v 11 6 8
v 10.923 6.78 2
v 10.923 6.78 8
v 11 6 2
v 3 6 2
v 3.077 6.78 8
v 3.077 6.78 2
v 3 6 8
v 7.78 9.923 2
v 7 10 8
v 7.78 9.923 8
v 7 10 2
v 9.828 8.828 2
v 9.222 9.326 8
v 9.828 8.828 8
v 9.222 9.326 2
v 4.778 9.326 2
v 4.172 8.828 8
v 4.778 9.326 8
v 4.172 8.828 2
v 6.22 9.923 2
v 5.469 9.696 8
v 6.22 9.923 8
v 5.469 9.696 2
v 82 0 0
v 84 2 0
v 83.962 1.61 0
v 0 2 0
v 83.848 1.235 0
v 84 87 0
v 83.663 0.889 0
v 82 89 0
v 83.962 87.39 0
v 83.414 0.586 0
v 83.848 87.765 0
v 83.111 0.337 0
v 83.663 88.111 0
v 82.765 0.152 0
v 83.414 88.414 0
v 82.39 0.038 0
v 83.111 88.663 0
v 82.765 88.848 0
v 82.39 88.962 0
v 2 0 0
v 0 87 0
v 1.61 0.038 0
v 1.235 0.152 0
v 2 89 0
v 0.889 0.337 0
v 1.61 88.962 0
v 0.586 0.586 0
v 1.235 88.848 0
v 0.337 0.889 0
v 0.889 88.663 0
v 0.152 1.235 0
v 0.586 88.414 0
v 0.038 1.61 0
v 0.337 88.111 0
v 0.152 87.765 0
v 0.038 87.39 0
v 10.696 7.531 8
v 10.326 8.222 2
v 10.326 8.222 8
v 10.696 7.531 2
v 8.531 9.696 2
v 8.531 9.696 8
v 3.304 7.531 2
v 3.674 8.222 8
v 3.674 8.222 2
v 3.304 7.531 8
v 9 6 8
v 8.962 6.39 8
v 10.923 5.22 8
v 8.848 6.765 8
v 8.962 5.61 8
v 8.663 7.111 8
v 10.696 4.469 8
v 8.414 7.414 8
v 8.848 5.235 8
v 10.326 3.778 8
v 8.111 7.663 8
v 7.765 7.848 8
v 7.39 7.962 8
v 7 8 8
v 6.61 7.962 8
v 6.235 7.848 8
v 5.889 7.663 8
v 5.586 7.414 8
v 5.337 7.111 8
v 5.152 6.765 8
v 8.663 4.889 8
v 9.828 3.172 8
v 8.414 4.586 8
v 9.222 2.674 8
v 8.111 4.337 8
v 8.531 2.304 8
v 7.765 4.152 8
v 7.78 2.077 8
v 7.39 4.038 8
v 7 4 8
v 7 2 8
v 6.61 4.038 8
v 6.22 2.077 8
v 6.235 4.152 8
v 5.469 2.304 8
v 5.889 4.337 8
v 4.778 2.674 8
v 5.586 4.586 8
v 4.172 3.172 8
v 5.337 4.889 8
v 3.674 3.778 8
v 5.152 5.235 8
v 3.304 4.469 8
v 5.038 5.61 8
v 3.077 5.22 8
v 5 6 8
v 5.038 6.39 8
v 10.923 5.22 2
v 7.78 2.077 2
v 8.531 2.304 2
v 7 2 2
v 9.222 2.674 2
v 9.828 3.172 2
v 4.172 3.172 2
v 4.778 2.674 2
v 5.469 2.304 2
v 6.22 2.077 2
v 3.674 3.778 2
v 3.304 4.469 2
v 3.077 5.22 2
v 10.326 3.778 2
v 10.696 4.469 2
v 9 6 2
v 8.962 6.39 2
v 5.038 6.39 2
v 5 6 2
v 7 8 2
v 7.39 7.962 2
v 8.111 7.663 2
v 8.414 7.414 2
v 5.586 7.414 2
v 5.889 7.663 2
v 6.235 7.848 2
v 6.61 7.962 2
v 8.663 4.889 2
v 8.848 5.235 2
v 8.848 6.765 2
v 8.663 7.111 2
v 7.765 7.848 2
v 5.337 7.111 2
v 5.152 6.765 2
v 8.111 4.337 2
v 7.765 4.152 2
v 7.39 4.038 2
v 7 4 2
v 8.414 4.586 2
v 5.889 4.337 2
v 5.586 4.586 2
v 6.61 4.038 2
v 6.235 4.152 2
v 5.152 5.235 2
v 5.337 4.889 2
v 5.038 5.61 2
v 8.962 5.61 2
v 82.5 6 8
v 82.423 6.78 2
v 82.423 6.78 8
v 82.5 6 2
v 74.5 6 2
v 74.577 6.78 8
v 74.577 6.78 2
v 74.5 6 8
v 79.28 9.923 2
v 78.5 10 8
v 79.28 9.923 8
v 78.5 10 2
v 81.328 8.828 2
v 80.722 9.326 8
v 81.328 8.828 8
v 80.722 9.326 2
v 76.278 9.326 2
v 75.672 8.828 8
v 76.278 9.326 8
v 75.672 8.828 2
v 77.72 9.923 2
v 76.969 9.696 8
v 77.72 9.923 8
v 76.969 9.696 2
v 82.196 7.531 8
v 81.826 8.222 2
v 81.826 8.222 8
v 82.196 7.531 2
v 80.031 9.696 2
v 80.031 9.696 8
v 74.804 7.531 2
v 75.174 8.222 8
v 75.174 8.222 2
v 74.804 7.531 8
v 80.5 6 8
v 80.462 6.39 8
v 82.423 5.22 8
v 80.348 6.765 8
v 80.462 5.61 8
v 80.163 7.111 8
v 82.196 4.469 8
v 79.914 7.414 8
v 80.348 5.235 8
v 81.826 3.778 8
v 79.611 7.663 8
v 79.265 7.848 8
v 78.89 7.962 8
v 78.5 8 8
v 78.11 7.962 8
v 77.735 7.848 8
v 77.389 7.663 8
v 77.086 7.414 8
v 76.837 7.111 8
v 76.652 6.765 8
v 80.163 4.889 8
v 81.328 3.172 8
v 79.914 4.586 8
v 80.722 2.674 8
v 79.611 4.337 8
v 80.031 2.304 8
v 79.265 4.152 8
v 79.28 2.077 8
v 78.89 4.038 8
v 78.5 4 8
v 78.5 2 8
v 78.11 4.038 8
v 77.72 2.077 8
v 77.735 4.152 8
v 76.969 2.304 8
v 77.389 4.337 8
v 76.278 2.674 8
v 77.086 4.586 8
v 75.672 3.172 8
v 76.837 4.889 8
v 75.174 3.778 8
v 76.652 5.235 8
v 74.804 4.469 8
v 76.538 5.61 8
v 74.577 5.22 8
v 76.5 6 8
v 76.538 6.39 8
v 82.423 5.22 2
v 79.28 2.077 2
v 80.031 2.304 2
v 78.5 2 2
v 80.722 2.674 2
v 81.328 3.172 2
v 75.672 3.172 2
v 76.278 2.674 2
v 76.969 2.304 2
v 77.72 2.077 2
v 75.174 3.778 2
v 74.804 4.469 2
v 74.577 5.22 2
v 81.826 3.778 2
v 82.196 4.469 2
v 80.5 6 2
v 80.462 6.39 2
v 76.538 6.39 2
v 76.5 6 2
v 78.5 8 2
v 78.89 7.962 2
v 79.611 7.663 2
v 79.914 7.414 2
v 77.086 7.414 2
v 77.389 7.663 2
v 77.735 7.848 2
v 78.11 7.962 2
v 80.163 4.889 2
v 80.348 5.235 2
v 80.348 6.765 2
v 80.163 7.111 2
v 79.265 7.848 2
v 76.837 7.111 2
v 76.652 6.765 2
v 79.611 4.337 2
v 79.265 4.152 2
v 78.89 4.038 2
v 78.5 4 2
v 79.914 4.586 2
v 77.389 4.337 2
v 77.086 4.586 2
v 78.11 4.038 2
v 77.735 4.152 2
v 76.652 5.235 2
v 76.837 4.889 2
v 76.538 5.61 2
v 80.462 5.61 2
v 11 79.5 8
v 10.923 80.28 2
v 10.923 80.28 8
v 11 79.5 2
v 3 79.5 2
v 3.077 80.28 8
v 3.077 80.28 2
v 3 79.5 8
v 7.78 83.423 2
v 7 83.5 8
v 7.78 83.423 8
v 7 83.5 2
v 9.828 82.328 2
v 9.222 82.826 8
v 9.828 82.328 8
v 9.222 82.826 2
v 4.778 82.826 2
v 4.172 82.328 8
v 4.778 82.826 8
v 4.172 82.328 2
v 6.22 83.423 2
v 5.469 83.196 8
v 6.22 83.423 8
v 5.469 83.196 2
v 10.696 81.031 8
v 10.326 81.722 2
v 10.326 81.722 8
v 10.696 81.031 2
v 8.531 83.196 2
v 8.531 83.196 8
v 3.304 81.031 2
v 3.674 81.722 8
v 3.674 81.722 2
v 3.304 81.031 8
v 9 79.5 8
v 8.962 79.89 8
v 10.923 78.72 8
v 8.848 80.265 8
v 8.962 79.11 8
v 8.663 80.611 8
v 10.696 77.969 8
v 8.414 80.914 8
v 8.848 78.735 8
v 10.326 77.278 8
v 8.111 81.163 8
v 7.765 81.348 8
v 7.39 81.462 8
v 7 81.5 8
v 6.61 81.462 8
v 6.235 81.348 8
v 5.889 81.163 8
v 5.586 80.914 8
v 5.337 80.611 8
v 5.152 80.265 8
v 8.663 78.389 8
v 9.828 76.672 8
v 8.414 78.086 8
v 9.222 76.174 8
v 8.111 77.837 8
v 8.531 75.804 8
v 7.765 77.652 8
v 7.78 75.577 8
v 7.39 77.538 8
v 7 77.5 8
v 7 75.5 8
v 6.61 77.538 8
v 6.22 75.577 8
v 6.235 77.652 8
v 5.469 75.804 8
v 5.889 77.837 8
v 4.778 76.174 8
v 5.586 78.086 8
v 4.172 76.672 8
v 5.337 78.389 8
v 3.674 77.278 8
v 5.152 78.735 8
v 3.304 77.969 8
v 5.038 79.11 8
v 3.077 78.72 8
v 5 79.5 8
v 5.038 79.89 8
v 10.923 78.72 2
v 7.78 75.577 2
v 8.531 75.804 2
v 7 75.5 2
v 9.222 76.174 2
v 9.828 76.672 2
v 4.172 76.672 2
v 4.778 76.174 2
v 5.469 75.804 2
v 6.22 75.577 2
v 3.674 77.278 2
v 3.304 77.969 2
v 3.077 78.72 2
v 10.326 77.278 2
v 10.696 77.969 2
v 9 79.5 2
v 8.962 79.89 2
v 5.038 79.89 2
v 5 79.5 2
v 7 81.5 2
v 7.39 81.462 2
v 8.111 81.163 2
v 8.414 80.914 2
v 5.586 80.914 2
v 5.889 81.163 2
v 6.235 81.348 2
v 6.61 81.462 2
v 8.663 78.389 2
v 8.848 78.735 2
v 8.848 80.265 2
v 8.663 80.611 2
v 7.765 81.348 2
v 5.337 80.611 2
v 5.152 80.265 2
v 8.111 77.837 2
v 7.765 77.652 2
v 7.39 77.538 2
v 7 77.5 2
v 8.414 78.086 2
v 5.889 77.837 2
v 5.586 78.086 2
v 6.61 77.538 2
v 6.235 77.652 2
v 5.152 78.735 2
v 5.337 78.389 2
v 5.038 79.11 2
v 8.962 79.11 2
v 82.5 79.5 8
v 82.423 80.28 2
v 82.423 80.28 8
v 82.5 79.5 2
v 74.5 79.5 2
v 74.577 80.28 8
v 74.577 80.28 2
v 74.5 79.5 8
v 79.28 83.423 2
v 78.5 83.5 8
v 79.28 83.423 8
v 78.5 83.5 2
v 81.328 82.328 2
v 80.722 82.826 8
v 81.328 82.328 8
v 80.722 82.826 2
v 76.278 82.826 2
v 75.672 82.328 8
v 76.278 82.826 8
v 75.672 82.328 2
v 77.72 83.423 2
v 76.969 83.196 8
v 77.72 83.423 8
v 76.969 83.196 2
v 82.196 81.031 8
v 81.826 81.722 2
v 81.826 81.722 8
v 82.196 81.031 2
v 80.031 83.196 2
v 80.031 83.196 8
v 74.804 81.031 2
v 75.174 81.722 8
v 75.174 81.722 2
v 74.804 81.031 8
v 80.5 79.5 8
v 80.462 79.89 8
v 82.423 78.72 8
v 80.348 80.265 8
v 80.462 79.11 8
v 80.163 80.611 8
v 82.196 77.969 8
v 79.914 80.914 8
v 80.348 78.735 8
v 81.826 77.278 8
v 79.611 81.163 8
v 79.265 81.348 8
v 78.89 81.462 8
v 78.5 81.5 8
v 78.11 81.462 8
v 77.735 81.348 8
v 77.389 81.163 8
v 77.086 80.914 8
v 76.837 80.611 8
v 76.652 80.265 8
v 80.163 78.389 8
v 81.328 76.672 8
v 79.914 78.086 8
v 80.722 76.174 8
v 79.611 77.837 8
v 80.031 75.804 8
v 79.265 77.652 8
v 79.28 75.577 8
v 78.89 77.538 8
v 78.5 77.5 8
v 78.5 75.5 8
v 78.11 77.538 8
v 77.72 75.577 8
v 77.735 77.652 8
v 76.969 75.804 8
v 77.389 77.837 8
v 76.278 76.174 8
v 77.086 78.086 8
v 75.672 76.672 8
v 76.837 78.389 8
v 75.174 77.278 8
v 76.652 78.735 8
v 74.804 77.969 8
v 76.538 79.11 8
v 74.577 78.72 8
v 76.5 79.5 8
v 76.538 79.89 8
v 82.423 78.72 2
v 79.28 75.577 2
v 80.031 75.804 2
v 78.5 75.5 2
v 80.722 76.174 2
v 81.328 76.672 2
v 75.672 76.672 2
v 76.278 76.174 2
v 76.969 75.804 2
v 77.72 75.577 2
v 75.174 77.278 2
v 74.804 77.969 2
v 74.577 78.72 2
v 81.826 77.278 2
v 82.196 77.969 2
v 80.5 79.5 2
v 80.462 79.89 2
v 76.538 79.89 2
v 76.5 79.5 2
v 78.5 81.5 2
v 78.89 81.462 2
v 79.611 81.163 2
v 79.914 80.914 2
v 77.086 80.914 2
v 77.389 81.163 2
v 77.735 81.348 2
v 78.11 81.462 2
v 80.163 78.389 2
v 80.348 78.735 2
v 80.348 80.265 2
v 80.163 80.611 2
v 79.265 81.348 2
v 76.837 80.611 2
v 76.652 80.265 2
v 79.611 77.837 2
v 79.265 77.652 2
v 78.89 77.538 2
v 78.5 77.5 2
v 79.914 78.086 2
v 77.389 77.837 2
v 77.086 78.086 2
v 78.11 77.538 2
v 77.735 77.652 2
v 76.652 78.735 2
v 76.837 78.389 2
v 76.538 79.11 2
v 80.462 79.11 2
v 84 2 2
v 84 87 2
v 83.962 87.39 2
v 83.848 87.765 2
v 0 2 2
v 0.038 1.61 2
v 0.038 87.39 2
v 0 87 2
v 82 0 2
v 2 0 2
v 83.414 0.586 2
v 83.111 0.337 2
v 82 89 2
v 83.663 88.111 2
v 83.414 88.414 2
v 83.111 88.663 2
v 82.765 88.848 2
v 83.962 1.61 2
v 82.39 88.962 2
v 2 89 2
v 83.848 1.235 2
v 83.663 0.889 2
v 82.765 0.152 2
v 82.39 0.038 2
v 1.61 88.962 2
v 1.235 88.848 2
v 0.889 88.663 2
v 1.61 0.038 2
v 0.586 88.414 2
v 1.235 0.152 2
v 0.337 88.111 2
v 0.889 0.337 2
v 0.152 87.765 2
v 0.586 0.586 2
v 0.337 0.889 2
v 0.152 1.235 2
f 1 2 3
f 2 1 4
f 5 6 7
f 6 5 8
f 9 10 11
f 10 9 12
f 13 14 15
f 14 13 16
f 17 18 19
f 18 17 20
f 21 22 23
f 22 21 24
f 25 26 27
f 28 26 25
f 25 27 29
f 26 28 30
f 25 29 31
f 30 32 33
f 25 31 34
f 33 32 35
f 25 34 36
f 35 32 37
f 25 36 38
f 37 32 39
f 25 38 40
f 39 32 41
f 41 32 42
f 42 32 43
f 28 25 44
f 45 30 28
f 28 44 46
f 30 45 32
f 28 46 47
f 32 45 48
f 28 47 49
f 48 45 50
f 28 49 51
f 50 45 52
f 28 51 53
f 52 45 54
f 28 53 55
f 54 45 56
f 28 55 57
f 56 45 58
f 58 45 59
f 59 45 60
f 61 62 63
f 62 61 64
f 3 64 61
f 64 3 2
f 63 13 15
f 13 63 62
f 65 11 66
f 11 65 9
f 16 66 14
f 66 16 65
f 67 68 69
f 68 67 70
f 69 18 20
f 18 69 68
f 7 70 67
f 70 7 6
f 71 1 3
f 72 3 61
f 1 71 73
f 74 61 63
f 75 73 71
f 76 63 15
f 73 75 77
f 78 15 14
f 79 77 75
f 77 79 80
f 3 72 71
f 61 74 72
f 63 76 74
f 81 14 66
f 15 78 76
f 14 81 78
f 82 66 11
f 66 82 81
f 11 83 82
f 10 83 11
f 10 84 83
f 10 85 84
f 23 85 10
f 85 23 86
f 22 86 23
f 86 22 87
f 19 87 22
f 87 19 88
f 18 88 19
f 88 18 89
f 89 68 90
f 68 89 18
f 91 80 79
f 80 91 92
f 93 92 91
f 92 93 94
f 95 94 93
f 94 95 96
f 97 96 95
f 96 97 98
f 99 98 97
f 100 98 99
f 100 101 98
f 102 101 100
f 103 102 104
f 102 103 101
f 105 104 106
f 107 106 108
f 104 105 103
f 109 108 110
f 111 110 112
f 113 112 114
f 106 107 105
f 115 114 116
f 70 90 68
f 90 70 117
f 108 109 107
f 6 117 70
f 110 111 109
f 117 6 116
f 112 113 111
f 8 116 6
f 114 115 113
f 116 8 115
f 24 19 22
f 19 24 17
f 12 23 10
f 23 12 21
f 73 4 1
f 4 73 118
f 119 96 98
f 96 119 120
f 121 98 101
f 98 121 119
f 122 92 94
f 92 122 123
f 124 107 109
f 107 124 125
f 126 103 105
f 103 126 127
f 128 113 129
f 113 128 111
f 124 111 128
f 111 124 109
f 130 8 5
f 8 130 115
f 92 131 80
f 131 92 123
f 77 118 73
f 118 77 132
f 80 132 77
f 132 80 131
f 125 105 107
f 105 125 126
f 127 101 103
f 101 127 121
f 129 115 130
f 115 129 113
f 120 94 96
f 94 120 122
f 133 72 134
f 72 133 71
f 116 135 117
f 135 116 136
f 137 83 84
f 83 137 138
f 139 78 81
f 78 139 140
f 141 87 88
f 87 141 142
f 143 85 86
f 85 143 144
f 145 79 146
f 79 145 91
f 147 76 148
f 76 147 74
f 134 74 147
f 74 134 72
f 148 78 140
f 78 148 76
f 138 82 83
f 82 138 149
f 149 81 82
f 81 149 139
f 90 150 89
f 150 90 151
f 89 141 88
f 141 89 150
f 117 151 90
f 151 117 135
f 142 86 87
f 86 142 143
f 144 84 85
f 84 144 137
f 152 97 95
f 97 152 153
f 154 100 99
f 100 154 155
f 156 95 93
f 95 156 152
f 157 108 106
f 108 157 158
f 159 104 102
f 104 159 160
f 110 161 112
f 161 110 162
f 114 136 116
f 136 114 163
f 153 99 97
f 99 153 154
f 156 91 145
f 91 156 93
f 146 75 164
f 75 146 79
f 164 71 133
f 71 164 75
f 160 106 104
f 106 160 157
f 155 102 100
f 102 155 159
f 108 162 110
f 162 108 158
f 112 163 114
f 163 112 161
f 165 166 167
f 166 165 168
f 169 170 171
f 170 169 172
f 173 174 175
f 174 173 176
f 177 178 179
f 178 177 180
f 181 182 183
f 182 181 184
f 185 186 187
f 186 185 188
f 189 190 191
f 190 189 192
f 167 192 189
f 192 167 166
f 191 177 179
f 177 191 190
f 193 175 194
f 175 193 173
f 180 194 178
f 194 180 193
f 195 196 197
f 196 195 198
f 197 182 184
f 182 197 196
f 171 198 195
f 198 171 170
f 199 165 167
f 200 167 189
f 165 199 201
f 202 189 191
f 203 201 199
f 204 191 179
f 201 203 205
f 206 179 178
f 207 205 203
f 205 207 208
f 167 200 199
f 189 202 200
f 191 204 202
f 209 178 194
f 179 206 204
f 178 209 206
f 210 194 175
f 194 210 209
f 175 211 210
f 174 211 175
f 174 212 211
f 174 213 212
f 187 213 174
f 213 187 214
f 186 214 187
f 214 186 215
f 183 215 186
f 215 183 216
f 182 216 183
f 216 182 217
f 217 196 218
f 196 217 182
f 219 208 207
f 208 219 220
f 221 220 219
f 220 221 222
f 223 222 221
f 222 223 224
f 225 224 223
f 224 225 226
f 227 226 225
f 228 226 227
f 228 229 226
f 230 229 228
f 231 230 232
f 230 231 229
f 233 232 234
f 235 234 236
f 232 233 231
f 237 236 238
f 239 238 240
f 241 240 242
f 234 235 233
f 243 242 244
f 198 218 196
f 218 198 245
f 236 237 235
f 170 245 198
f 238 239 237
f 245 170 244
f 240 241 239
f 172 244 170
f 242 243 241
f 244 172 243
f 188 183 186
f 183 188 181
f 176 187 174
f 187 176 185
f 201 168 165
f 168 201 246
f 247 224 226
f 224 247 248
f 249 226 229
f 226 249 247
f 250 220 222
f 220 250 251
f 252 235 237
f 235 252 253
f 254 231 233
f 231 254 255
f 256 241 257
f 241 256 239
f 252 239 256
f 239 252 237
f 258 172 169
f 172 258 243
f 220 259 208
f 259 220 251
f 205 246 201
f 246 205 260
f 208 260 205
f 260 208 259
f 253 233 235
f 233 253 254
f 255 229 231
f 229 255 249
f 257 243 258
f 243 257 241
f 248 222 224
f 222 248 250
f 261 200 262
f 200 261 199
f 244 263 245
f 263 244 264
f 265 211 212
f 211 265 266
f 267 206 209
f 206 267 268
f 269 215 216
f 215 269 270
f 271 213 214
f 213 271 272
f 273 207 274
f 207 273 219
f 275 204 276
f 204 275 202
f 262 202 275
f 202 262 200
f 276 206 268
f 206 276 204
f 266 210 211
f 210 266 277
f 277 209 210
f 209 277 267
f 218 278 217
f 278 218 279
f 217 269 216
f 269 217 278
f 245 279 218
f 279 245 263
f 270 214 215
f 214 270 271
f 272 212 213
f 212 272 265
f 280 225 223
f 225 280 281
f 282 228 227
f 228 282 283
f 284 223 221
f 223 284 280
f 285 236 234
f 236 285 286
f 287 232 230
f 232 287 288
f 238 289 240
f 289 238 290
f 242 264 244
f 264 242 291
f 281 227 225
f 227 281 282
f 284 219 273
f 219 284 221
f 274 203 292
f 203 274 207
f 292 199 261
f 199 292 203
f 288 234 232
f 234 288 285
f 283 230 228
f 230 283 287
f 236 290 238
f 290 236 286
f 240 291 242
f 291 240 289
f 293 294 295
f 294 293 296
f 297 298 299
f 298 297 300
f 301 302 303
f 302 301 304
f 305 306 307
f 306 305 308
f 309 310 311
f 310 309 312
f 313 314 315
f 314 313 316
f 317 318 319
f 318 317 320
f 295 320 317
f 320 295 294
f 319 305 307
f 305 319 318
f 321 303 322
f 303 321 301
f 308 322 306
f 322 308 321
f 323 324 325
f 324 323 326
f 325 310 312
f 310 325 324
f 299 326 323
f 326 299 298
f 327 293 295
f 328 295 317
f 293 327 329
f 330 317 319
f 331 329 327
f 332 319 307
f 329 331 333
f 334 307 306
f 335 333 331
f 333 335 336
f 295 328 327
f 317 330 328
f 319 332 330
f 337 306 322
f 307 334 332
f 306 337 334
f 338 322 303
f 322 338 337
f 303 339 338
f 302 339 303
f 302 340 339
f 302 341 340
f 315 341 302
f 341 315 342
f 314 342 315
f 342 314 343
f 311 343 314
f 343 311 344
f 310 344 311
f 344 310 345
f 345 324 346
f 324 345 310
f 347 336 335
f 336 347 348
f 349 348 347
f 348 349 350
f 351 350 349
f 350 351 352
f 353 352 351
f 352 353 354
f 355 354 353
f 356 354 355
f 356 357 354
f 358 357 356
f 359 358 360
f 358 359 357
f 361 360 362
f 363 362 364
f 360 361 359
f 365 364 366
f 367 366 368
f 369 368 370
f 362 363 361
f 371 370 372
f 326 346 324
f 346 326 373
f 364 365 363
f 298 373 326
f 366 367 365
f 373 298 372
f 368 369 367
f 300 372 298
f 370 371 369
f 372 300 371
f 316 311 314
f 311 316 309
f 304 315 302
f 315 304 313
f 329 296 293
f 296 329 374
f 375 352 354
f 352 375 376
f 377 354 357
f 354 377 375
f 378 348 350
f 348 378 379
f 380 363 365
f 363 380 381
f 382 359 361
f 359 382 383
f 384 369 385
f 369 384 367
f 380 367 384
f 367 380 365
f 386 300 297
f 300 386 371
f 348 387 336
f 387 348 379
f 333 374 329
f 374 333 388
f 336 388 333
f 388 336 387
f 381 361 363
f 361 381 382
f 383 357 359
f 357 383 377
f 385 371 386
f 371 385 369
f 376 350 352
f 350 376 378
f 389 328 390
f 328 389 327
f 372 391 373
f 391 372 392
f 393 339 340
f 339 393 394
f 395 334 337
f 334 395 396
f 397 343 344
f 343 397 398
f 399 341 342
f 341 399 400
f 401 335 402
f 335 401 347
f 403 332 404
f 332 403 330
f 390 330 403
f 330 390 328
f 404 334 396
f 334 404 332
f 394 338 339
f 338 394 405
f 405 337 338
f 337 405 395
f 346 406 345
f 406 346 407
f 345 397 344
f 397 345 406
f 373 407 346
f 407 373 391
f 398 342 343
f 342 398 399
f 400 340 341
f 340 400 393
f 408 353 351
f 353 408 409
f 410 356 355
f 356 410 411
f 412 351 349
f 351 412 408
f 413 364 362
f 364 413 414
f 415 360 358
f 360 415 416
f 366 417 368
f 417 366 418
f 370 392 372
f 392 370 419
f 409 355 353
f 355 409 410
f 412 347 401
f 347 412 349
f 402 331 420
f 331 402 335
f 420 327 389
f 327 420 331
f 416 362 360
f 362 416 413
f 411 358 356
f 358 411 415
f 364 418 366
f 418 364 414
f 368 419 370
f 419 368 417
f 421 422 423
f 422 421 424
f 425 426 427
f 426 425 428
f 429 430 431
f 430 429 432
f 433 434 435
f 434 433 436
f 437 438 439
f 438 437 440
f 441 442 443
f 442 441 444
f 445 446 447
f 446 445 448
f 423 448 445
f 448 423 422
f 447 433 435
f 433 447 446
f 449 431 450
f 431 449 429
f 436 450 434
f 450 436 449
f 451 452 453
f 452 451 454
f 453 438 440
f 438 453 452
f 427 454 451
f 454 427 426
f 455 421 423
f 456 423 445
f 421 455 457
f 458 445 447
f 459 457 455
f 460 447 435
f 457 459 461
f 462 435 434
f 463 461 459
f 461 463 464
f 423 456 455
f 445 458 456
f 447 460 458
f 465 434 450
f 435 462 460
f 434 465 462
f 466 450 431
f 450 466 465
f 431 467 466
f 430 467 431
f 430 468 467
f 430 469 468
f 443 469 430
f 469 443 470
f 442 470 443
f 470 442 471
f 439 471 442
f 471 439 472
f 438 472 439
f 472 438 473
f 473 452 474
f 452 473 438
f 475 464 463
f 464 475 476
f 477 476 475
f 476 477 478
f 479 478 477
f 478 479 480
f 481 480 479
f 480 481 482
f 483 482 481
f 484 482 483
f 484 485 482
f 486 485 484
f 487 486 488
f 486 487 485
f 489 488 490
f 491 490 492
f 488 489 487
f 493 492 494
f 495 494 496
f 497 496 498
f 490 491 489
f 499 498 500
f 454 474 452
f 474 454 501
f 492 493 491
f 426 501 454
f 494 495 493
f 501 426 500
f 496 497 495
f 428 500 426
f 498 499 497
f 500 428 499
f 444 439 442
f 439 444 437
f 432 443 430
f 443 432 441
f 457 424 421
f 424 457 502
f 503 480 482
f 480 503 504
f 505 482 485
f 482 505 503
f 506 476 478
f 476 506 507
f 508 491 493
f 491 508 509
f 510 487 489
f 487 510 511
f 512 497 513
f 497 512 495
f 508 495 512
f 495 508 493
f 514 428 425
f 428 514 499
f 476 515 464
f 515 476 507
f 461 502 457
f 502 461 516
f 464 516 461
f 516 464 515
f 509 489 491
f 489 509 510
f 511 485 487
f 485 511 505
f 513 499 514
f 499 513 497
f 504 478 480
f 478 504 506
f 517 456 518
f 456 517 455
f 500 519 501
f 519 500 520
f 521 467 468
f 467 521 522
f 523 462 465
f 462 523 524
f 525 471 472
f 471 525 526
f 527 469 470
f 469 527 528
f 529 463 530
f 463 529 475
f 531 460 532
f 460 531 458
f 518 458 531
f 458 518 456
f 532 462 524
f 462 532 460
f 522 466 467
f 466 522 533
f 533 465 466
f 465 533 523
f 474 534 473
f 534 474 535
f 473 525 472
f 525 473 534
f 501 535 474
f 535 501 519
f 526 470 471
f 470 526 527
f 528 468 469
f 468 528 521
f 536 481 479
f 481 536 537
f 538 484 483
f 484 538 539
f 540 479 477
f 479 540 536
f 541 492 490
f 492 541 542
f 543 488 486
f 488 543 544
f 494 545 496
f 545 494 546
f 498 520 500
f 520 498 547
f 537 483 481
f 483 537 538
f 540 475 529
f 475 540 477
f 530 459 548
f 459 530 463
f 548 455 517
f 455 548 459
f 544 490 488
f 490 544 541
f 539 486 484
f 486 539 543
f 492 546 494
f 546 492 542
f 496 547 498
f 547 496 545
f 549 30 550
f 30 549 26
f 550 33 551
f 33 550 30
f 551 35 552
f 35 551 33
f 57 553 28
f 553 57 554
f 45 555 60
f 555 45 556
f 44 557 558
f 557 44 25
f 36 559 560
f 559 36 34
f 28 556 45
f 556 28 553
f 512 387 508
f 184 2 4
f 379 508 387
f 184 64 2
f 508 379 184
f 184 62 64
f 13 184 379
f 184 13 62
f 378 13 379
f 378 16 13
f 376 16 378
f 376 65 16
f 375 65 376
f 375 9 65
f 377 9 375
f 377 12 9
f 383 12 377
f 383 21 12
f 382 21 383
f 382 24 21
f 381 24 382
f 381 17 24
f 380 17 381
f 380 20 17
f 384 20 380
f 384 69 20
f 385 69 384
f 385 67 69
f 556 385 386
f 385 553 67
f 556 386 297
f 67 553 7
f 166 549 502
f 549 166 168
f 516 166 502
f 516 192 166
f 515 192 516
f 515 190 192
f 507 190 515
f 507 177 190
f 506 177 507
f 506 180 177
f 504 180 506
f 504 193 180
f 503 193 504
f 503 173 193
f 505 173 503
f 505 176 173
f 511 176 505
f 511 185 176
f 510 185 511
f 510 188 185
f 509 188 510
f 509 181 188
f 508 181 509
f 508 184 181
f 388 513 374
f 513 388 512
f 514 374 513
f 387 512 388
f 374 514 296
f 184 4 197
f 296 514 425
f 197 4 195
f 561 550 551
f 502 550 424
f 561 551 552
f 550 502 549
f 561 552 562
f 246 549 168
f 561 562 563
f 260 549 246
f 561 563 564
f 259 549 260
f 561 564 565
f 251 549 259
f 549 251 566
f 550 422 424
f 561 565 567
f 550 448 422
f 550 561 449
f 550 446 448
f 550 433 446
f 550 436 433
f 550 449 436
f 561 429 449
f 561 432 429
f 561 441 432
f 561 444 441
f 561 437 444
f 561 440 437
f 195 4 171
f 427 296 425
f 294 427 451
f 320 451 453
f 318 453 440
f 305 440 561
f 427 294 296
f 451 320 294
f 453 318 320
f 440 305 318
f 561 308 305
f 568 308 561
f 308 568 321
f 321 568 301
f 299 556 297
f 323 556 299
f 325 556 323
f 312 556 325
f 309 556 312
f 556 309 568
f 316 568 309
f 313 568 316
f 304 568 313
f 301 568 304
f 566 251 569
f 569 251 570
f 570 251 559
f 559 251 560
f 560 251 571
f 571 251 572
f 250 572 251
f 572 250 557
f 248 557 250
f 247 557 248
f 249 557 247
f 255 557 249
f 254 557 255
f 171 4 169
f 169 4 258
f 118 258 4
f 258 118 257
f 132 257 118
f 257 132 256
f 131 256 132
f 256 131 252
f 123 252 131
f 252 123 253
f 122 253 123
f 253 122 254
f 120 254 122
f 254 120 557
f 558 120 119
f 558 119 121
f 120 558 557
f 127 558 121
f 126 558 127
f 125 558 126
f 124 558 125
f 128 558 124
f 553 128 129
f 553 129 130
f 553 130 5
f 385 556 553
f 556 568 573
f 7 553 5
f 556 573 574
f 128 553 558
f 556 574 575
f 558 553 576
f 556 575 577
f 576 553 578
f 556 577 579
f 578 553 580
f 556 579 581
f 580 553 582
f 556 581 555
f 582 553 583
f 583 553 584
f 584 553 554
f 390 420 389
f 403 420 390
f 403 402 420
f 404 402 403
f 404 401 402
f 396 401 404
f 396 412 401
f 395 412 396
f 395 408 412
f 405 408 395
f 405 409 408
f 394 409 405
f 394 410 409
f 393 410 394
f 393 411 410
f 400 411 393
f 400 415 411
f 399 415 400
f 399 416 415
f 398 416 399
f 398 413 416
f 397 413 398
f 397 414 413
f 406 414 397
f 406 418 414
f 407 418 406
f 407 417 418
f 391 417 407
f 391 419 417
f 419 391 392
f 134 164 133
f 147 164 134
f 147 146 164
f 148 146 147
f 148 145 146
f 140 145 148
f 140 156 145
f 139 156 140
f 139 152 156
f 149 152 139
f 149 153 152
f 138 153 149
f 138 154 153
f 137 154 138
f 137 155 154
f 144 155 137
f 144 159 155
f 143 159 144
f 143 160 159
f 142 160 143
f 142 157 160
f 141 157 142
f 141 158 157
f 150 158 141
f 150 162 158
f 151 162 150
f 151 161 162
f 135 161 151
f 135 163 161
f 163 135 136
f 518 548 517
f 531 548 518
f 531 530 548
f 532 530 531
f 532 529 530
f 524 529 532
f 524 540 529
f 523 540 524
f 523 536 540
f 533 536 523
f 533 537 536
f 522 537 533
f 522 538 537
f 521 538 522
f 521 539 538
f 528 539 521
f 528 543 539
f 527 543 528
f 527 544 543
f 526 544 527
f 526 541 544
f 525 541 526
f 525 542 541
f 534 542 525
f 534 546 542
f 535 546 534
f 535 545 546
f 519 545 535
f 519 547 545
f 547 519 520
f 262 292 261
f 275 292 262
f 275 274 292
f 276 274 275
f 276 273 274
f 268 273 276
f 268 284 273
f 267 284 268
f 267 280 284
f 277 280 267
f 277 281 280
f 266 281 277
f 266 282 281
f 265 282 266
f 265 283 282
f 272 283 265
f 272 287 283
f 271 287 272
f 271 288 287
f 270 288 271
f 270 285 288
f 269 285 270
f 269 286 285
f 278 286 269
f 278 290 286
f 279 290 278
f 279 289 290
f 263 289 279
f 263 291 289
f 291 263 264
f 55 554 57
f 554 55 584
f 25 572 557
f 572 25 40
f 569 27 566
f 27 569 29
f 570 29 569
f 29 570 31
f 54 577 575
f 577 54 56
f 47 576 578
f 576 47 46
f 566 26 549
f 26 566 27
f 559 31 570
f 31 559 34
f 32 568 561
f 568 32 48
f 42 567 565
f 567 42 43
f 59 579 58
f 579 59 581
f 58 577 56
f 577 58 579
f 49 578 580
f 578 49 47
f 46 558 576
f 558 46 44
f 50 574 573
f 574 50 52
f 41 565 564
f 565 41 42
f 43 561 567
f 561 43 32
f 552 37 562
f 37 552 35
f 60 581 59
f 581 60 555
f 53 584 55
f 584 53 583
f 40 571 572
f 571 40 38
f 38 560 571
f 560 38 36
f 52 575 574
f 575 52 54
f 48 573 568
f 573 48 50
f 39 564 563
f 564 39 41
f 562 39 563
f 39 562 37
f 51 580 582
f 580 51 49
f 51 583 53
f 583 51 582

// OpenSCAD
union(){
   linear_extrude( 2.000000 )
      difference(){
         square( [ 84.000000, 89.000000 ] );
         union(){
            union(){
               union(){
                  translate( [ 0.000000, 0.000000 ] )
                     rotate( [ 0.000000, 0.000000, 0.000000 ] )
                        difference(){
                           square( 2 );
                           translate( [ 2.000000, 2.000000 ] )
                              circle( r=2.000000, $fn=32 );
                           
                           
                        }
                     
                  
                  translate( [ 0.000000, 89.000000 ] )
                     rotate( [ 0.000000, 0.000000, -90.000000 ] )
                        difference(){
                           square( 2 );
                           translate( [ 2.000000, 2.000000 ] )
                              circle( r=2.000000, $fn=32 );
                           
                           
                        }
                     
                  
                  
               }
               translate( [ 84.000000, 89.000000 ] )
                  rotate( [ 0.000000, 0.000000, -180.000000 ] )
                     difference(){
                        square( 2 );
                        translate( [ 2.000000, 2.000000 ] )
                           circle( r=2.000000, $fn=32 );
                        
                        
                     }
                  
               
               
            }
            translate( [ 84.000000, 0.000000 ] )
               rotate( [ 0.000000, 0.000000, -270.000000 ] )
                  difference(){
                     square( 2 );
                     translate( [ 2.000000, 2.000000 ] )
                        circle( r=2.000000, $fn=32 );
                     
                     
                  }
               
            
            
         }
         
      }
   
   translate( [ 7.000000, 6.000000 ] )
      union(){
         union(){
            union(){
               translate( [ 0.000000, 0.000000 ] )
                  difference(){
                     cylinder( r=4.000000, h=8.000000, $fn=32 );
                     cylinder( r=2.000000, h=8.000000, $fn=32 );
                     
                  }
               
               translate( [ 71.500000, 0.000000 ] )
                  difference(){
                     cylinder( r=4.000000, h=8.000000, $fn=32 );
                     cylinder( r=2.000000, h=8.000000, $fn=32 );
                     
                  }
               
               
            }
            translate( [ 0.000000, 73.500000 ] )
               difference(){
                  cylinder( r=4.000000, h=8.000000, $fn=32 );
                  cylinder( r=2.000000, h=8.000000, $fn=32 );
                  
               }
            
            
         }
         translate( [ 71.500000, 73.500000 ] )
            difference(){
               cylinder( r=4.000000, h=8.000000, $fn=32 );
               cylinder( r=2.000000, h=8.000000, $fn=32 );
               
            }
         
         
      }
   
   
}
